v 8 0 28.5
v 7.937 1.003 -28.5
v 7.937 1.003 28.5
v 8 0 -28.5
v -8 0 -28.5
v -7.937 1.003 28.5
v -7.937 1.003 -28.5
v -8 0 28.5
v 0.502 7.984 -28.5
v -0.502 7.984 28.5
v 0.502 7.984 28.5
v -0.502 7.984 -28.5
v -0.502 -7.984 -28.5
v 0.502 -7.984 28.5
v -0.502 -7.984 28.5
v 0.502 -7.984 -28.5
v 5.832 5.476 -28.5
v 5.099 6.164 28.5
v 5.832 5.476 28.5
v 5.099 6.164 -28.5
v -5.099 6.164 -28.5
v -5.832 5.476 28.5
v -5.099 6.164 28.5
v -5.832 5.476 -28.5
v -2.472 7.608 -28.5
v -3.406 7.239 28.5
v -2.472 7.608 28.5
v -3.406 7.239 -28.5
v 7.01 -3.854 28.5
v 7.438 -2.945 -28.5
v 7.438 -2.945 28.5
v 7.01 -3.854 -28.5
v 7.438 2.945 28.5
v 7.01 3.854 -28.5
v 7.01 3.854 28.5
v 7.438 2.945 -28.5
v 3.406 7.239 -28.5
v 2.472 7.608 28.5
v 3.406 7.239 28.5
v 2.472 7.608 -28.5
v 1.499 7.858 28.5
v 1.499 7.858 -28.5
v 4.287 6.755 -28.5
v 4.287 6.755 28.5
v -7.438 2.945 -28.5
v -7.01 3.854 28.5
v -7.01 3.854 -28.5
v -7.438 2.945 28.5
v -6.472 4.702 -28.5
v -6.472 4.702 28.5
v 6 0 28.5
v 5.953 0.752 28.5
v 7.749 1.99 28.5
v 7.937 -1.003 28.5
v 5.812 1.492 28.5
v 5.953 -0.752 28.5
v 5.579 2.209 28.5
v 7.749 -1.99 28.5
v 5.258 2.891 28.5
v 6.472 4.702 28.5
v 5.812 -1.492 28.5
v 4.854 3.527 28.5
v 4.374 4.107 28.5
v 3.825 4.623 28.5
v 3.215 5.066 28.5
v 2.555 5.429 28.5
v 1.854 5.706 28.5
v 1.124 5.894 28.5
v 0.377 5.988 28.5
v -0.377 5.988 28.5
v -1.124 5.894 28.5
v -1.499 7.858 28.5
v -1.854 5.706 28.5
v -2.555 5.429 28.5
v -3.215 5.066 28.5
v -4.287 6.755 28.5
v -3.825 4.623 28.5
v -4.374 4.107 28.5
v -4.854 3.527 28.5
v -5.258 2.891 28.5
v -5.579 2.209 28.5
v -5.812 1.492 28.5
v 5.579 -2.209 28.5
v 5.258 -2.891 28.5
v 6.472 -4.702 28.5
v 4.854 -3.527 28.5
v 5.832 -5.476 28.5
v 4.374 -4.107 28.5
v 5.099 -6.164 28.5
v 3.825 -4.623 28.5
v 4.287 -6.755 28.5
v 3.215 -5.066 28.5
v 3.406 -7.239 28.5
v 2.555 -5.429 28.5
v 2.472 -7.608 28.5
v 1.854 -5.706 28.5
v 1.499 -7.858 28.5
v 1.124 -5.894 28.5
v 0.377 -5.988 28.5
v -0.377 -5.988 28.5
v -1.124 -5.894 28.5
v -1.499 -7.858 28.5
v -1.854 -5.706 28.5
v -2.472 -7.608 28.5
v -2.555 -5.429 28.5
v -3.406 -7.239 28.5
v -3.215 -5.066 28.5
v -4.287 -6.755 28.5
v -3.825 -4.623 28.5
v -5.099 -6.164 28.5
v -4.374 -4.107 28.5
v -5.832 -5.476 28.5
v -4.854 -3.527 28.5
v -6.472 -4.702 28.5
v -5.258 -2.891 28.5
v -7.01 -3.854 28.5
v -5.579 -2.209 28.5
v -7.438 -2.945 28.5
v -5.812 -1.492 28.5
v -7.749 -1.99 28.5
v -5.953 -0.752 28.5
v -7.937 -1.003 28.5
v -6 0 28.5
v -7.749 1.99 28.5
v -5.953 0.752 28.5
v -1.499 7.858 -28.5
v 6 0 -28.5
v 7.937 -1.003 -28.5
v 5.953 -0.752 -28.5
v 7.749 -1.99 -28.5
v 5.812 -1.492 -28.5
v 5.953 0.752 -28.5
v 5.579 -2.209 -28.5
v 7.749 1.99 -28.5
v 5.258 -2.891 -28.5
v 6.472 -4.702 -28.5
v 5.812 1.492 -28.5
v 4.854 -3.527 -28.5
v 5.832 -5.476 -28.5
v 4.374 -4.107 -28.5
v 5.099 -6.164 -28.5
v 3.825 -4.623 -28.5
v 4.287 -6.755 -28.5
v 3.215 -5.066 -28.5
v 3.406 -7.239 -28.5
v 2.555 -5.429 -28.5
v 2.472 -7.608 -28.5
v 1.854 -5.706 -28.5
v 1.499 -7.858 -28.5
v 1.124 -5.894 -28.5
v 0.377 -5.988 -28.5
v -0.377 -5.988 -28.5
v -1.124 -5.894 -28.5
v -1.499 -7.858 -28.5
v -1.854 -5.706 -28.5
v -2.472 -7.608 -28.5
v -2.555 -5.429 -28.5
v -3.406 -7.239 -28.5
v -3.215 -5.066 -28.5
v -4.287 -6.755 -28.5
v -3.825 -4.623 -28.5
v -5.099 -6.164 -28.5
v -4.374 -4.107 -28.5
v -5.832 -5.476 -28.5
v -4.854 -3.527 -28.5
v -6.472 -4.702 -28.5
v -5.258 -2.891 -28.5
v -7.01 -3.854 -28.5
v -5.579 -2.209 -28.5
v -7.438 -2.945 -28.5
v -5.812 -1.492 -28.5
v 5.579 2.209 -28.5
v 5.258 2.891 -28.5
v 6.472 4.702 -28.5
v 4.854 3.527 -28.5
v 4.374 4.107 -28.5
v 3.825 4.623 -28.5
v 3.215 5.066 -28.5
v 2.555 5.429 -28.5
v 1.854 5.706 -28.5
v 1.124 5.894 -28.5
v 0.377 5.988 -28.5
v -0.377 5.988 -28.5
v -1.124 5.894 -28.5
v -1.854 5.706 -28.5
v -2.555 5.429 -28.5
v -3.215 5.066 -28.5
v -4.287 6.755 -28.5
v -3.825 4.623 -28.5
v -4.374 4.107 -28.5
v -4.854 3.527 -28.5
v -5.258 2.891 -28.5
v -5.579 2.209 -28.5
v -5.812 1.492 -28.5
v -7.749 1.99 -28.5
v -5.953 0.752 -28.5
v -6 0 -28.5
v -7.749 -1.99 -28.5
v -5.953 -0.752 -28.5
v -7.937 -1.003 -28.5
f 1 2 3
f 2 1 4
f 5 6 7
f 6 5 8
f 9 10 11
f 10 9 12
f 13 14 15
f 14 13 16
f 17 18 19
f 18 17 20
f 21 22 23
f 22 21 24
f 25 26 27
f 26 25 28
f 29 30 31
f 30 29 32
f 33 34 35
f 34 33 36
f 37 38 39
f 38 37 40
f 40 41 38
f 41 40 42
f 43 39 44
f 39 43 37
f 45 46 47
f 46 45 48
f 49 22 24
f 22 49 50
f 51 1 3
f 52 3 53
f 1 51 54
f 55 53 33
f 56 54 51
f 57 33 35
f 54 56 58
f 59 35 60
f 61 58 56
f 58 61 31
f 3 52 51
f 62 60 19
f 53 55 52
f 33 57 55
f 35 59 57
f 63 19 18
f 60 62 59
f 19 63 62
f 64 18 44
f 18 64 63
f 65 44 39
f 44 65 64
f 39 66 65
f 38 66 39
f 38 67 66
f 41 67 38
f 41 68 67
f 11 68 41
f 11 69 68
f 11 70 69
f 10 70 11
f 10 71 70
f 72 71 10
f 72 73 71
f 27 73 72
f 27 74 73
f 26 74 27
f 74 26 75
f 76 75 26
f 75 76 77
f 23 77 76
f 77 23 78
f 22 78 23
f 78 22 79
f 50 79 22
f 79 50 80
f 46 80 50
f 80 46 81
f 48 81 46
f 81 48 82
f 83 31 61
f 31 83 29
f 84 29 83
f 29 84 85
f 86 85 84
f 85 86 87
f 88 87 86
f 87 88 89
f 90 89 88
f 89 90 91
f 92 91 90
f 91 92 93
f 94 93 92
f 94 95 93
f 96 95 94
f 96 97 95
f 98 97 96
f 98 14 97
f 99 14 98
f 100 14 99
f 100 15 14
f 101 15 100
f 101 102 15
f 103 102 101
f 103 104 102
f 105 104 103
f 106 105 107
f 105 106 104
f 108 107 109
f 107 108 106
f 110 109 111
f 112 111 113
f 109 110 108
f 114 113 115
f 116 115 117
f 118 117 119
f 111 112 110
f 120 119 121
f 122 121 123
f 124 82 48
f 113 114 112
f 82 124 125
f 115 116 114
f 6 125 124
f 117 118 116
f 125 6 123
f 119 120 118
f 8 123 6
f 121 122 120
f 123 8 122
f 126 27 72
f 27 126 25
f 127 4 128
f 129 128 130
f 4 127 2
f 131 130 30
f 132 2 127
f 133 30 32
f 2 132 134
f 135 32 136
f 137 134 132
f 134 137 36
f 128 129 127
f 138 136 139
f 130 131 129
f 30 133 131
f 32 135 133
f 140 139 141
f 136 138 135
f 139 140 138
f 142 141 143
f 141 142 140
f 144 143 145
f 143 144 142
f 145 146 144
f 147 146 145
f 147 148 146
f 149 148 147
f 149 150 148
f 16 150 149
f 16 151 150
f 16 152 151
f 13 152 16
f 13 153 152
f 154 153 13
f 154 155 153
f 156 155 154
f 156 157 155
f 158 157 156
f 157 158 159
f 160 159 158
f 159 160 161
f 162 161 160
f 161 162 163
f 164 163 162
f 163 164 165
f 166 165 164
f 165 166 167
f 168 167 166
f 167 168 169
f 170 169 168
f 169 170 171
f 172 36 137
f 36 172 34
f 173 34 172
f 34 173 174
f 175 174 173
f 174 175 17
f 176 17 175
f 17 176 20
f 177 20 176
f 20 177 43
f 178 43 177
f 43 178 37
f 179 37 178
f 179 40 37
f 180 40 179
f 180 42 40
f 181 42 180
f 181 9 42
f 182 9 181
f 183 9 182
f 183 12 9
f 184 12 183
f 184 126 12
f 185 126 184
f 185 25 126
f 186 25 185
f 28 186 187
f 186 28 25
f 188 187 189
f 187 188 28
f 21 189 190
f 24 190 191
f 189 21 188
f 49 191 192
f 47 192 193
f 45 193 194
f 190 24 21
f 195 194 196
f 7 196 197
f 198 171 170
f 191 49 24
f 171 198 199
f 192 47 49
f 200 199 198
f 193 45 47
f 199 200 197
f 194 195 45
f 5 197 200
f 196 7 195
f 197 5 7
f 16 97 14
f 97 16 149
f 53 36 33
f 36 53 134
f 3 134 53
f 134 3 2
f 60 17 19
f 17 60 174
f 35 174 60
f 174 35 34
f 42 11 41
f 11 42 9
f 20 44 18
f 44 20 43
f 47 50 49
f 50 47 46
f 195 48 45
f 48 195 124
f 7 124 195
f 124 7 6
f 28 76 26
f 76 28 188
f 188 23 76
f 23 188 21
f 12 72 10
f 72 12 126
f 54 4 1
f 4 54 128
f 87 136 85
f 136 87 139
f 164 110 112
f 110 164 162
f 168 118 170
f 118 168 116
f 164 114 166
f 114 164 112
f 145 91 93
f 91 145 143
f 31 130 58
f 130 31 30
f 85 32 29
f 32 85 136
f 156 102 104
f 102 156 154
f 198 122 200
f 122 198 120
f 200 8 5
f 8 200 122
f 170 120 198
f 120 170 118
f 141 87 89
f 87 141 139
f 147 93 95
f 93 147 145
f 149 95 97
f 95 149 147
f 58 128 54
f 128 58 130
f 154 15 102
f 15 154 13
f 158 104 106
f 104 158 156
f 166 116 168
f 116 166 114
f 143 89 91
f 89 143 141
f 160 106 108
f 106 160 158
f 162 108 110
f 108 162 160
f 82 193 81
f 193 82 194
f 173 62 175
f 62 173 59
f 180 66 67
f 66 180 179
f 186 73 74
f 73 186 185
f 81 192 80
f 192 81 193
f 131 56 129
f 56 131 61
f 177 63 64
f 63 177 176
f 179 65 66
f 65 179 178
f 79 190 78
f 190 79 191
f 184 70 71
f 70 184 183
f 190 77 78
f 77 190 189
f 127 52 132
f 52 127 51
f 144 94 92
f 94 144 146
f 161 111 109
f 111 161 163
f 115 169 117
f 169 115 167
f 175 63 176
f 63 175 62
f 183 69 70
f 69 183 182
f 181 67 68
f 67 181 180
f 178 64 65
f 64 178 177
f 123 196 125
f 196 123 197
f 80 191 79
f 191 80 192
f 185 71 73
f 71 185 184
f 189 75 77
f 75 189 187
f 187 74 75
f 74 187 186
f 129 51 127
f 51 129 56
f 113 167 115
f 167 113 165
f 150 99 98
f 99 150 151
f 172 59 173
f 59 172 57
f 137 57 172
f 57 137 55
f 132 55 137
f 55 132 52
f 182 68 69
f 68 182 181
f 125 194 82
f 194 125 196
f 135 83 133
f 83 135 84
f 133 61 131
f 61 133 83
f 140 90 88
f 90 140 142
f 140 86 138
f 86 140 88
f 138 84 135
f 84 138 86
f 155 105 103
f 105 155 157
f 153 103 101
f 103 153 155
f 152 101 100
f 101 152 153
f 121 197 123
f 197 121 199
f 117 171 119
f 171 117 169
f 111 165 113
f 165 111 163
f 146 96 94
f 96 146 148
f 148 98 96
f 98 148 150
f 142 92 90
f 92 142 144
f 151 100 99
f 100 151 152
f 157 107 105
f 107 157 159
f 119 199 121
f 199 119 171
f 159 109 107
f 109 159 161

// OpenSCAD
$fn = 50;


difference() {
	union() {
		translate(v = [0, 0, -28.5000000000]) {
			cylinder(h = 57, r = 8.0000000000);
		}
	}
	union() {
		translate(v = [0, 0, -100.0000000000]) {
			cylinder(h = 200, r = 6);
		}
	}
}
